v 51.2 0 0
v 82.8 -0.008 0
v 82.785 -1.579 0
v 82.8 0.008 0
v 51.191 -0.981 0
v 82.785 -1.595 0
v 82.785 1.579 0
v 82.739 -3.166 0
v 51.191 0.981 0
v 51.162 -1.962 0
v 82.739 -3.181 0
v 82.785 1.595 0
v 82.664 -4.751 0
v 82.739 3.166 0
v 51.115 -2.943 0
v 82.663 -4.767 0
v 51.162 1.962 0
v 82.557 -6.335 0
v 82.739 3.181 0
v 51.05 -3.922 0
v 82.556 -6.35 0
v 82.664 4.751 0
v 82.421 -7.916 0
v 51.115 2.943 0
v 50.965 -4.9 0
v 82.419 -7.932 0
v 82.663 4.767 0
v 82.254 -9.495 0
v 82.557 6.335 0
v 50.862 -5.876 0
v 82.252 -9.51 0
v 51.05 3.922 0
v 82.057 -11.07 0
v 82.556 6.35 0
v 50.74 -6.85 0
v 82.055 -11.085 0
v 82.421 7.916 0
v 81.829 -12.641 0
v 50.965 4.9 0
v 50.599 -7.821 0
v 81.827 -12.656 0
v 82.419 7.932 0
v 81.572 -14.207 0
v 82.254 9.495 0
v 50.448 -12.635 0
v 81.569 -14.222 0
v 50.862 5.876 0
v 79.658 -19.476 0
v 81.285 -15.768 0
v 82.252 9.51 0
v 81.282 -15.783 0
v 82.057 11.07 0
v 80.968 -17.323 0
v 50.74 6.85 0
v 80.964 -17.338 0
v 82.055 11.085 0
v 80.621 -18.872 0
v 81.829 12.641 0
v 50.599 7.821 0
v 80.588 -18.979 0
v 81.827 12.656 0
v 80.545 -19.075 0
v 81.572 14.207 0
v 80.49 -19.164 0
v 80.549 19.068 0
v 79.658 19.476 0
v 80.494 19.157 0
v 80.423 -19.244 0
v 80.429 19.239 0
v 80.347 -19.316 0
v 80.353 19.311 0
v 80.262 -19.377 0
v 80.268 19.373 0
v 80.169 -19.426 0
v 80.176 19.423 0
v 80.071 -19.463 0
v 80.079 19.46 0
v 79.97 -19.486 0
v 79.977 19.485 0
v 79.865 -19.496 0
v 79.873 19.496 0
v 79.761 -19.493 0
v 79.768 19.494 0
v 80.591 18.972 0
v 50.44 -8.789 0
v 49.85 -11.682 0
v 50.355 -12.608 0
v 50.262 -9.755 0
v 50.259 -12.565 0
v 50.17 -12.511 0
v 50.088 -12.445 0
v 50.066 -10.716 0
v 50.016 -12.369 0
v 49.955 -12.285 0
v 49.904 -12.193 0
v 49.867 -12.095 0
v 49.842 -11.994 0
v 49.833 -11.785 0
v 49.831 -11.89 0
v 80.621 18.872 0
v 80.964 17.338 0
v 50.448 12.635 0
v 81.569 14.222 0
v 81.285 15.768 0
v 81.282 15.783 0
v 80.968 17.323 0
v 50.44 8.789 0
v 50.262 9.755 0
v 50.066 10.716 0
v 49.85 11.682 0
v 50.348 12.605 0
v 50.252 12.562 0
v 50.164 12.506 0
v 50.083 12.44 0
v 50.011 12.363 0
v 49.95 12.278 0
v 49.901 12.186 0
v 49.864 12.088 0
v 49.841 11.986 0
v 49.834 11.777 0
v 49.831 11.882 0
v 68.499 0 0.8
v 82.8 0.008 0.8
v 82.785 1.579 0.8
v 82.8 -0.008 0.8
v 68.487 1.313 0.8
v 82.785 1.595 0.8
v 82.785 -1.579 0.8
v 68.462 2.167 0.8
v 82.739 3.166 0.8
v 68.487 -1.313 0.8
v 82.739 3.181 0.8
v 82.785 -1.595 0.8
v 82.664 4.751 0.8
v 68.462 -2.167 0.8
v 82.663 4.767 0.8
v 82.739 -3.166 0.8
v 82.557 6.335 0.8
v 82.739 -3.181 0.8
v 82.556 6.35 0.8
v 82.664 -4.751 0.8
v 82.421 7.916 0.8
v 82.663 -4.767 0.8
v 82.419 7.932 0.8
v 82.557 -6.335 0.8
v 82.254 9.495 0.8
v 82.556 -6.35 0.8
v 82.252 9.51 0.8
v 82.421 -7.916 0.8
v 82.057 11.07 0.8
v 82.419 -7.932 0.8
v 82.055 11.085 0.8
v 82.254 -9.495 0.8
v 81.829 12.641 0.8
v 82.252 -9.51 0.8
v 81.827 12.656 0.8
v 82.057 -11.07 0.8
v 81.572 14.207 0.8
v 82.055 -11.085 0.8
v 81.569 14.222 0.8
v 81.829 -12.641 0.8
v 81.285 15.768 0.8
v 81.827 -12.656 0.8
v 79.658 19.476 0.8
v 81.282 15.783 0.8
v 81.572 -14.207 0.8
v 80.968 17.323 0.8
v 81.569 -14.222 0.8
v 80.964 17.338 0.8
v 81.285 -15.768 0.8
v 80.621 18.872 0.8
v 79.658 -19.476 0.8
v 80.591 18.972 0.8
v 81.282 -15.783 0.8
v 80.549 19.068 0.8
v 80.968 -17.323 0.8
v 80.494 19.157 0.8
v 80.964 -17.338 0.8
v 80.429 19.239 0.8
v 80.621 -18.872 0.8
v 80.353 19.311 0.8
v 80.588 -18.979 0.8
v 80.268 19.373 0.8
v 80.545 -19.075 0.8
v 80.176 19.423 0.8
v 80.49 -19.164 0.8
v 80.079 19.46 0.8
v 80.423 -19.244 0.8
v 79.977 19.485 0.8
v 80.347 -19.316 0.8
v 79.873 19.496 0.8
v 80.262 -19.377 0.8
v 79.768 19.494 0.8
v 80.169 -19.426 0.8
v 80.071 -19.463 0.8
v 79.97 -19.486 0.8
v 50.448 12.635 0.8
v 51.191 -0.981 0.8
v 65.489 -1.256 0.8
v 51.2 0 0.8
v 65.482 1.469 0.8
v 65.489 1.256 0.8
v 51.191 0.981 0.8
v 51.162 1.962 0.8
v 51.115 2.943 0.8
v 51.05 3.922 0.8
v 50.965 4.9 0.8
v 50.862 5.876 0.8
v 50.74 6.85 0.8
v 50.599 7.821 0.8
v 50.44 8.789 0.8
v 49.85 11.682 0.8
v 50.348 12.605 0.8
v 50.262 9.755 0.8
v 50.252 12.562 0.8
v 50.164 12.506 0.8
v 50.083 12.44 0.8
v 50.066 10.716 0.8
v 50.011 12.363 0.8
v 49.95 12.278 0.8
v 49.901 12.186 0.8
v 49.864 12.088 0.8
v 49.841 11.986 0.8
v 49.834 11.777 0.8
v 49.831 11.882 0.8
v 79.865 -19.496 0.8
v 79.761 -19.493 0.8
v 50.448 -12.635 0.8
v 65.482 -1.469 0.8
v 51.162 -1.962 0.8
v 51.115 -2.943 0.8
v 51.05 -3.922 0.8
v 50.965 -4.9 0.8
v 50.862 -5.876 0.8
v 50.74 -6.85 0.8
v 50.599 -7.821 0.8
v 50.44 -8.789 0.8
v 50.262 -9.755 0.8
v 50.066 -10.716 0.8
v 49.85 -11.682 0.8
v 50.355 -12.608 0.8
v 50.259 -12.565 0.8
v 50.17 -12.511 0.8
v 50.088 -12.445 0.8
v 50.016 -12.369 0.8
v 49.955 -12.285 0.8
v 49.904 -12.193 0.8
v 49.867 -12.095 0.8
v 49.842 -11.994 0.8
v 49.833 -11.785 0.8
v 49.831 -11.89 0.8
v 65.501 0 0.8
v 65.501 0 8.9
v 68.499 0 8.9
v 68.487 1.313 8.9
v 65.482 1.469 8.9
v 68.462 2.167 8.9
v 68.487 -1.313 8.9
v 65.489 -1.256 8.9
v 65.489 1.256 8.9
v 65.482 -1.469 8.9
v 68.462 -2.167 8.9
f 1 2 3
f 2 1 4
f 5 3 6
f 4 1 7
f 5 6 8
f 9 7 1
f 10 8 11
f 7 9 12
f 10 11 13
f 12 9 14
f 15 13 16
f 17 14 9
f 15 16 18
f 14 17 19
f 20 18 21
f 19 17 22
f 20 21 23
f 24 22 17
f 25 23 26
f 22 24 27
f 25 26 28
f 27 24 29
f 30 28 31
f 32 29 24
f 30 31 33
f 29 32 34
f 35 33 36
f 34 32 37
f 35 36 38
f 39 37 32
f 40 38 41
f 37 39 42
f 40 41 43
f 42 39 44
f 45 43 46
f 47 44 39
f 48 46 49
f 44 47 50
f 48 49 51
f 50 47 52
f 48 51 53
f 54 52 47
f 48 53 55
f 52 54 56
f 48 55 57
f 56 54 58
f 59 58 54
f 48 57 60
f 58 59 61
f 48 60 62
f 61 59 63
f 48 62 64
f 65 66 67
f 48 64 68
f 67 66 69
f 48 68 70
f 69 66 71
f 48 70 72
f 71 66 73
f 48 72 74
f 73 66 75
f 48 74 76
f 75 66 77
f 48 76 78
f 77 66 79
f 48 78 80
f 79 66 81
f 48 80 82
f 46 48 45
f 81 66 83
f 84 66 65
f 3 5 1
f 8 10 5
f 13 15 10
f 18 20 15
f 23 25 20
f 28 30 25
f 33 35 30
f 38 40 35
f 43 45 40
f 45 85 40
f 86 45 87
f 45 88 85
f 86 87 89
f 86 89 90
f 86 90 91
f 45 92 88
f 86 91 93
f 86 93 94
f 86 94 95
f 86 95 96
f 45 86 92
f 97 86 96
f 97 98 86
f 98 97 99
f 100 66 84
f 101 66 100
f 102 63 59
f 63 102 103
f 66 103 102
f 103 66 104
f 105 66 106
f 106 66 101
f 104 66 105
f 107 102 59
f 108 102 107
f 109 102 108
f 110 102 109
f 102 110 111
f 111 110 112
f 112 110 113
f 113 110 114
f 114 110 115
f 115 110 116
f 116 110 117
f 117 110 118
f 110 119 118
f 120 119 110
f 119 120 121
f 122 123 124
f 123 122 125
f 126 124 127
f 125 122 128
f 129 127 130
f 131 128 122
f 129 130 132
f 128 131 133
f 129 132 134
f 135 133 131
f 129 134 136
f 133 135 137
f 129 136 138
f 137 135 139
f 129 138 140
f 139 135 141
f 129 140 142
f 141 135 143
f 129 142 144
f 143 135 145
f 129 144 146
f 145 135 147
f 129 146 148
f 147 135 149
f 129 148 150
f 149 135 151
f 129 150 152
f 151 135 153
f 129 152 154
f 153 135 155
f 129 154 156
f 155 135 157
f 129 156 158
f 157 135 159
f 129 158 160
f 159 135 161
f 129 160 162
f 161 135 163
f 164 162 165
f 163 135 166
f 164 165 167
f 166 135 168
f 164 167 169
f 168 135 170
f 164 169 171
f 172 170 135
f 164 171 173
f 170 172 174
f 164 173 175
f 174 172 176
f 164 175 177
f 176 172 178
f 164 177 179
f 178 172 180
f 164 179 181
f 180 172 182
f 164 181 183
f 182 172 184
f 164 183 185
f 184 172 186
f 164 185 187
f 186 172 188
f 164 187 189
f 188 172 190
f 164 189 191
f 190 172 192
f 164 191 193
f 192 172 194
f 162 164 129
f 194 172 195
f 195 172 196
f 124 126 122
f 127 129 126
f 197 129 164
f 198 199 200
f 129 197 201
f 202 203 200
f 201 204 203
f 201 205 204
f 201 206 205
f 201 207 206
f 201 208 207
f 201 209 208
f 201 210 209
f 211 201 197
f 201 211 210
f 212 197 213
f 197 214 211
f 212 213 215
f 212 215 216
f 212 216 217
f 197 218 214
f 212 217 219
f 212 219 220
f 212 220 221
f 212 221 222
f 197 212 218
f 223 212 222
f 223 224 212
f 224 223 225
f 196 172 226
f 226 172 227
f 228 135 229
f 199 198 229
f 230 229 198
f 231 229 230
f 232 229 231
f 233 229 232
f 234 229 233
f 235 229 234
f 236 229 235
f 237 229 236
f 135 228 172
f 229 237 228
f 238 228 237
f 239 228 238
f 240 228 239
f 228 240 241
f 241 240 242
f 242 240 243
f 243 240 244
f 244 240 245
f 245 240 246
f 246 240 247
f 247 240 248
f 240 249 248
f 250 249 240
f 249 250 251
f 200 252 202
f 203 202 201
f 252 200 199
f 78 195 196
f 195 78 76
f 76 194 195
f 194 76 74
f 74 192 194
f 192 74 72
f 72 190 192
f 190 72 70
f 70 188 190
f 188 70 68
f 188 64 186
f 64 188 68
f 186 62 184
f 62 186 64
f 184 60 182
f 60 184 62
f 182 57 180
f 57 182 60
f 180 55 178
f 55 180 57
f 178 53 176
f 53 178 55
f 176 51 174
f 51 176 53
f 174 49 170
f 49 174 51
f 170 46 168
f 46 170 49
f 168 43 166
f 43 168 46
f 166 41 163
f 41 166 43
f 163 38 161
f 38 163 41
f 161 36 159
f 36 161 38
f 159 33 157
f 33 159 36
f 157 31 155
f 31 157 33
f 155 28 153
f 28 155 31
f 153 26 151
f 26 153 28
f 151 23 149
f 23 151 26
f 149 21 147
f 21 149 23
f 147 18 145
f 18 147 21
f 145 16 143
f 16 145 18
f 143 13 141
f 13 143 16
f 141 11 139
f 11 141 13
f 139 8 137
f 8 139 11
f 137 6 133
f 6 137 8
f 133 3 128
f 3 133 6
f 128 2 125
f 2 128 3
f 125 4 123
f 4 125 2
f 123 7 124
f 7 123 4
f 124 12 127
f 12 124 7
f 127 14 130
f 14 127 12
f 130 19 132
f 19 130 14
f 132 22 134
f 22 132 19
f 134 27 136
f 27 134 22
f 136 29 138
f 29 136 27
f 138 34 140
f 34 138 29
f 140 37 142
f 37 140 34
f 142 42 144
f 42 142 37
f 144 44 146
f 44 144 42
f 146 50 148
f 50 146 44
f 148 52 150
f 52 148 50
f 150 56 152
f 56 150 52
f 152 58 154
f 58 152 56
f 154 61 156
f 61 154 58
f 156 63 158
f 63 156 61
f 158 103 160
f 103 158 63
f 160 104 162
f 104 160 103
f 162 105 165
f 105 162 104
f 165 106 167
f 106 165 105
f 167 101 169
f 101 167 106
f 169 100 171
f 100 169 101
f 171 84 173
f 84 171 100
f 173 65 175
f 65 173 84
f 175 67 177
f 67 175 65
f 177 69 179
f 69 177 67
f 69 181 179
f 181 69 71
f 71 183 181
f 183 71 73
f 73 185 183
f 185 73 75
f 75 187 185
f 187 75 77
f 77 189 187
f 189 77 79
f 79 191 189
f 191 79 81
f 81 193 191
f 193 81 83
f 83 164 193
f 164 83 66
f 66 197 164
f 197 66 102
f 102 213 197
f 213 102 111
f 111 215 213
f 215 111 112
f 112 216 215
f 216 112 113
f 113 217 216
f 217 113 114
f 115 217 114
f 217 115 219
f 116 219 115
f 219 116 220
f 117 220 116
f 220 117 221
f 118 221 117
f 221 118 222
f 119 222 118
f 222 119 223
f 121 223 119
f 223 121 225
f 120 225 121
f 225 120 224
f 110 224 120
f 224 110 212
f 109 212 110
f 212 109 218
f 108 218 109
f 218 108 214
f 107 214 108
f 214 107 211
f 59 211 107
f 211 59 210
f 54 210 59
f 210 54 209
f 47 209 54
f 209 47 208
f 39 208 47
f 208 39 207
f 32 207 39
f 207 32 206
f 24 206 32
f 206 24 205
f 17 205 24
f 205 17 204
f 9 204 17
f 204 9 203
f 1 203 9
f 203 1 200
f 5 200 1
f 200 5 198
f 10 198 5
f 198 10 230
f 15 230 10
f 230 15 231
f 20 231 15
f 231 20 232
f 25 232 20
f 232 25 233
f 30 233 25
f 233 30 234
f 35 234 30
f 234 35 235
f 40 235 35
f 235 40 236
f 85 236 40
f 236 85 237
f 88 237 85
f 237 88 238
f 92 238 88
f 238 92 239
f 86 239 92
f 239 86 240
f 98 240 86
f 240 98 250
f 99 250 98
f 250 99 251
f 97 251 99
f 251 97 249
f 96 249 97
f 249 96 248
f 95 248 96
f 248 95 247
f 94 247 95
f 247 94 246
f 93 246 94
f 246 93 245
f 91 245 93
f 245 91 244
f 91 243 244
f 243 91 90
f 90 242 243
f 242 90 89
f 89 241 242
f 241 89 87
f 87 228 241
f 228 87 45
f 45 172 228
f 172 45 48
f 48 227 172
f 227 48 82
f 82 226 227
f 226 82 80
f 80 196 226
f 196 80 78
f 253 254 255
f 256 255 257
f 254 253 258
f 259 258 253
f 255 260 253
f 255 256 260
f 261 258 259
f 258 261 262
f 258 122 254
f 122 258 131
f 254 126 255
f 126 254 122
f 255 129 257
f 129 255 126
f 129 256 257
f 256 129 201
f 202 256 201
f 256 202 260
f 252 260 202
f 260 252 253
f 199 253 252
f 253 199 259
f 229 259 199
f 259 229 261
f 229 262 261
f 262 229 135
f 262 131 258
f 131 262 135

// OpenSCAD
// file: parameters.scad
// =============================================================================
// Gen-BU — nightly 2026-10-10 (physics_scorer, honest magpylib watts)
// New pole/coil ratio on a much bigger ring: twelve narrow 26.4° bobbins (r 52–82 mm, 13.5 mm build, 8.1 mm copper) under 8 poles pushed out to R66, so each coil spans 120° electrical with a short mean turn while the poles sit 52 mm apart (less pole-to-pole leakage) and move faster. 8p/12c was dismissed on earlier nights at 3.2 W because it was only scanned on the R50 ring; tonight it climbs steadily with ring radius (R50 3.39 → R57 4.58 → R59.5 5.18 → R66 6.08 W scan). Diametric Ø5 assists turned out to LOWER this layout, so none are fitted. A ring this big no longer fits a one-plate layout with disc endbells, so the endbells become two crossed 44 mm bar bearing bridges, which is what keeps it on one 410 mm plate.
// Clocking 0 deg (magnets N facing S) + D-flat keyed bore + index notch + flip-symmetric hole map.
// Windable 2-piece bobbin; turns = physics_scorer turns_fit; copper only between flanges.
// Steel back-iron: 2× Ø158 × 4.76 mm (3/16") mild-steel discs (steel_backiron_disc.dxf); magnets sit ON the steel
// (through-pockets) -> score with --back-iron. Night 2026-10-10.
// =============================================================================
topology            = "dual_rotor";

// --- Wire / winding (physics_scorer winding-fit) -------------------------------
wire_awg            = 26;
wire_od             = 0.45;     // insulated OD mm (bare 0.405)
fill_realistic      = 0.65;     // insulated-wire area / window (DENSE layered wind with a jig; scorer cap 0.65)
turns               = 446;       // = physics_scorer turns_fit (do NOT raise)
coil_former_type    = "bobbin";
coil_core_inset     = 13.50;     // radial copper build: hub = copper boundary inset by this
wind_build_axial    = 0.0;      // nothing proud of the flanges
wind_build_radial   = 0.0;

// --- Bobbin (base + lid) ---------------------------------------------------------
coil_id_r           = 52.00;    // copper boundary sector
coil_od_r           = 82.00;
span_deg            = 26.36;    // = pitch - 2*asin((wall+0.85)/coil_id_r) -> >=1.2 mm stator web
former_web          = 8.10;     // copper height between flanges (TALL copper: steel keeps Bz up)
flange_t            = 0.80;     // >= 0.8 mm FDM wall rule (tall winds push on the flanges)
wall                = 0.80;     // flange lip beyond copper
former_bare_h       = former_web + 2 * flange_t;
coil_envelope_h     = former_bare_h + 2 * wind_build_axial;
tab_w               = 7.0;
tab_len             = 7.0;
tab_h               = former_bare_h / 2;
pin_d               = 1.9;      // 1.75 mm filament locating pin
coil_mount_r        = coil_od_r + 0.2 + 4.0;
lead_y              = 1.6;
lead_slot_w         = 0.9;
lead_groove_d       = 0.6;

// --- Gap -------------------------------------------------------------------------
run_clear           = 0.50;     // rotor face -> flange
gap_spacer_h        = run_clear + wind_build_axial;
m2m                 = coil_envelope_h + 2 * run_clear;   // rotor face to rotor face (= gap_sleeve length)

// --- Stator ----------------------------------------------------------------------
coil_stations       = 12;
bay_clear           = 0.25;
stator_thick        = former_bare_h;                        // bobbins flush both faces
stator_od           = 182;
shaft_clear_stator  = 14.0;     // stator is static; gap sleeve OD 12 spins inside

// --- Rotor(s) --------------------------------------------------------------------
magnet_Br           = 1.43;     // N52
magnet_d_large      = 20.0;
magnet_h_large      = 5.0;      // one O20x5 per pocket
magnet_h_small      = 5.0;      // unused: no O5 pockets in this kit
halbach_magnetisation = "none";  // NO O5 assist magnets in this kit (scan: they lower the 4-pole score)
rotor_b_same_axis   = true;     // same-index magnets share one axis: N faces S across the gap
large_pocket_d      = 20.3;
small_pocket_d      = 5.3;
pocket_h            = 5.00;     // THROUGH the carrier: magnet back face sits on the steel disc (FLUSH seat: carrier = magnet height, magnet face level with the rotor face)
large_n             = 8;
R_large             = 66.0;
small_r_list        = [];       // no O5 pockets
carrier_od          = 158.0;
carrier_thick       = pocket_h;
hub_h               = 12.0;     // > steel_t + insert: radial set-screw clears the steel
hub_od              = 24.0;     // slim hub so the M4 brace rods fit at R~18 inside the coil ring
hub_insert_d        = 4.0;      // M3 heat-set insert, radial, bears on the D-flat
rotor_b_offset_deg  = 0.0;      // CLOCKING: magnets directly opposite
shaft_key           = "dflat";
dflat_depth         = 0.5;      // 8 mm shaft with 0.5 mm flat (7.5 across flat)
index_notch_d       = 3.0;

// --- Steel back-iron (buyable laser-cut) -------------------------------------------
steel_t             = 4.76;      // mild steel thickness (image method ignores it; sized from steel_flux.py so the return path stays well below saturation)
steel_center_hole   = 26.0;     // slips over the rotor hub (OD 24)
steel_od            = carrier_od;   // steel disc OD = rotor carrier OD

// --- Modular MAX interface ----------------------------------------------------------
shaft_bore          = 8.35;
dflat_x             = 4.0 - dflat_depth + (shaft_bore - 8.0) / 2;
bearing_d           = 21.85;
bearing_h           = 7.2;
m3_clear            = 3.5;
bolt_r_inner        = 30.0;     // M3 steel-disc clamp bolts (inside the magnet ring)
bolt_n_inner        = 4;
bolt_inner_angles   = [0, 90, 180, 270];
bolt_r_outer        = 44.0;     // second M3 steel-disc clamp ring
bolt_outer_angles   = [67.5, 112.5, 247.5, 292.5];
flange_bolt_r       = 85.0;     // frame rods: OUTSIDE the rotor OD (rotors spin inside them)
flange_bolt_n       = 4;
flange_bolt_offset  = 45.00;    // between coil stations -> never cuts a lead groove/tab
brace_r             = 18.0;
brace_d             = 4.3;      // temporary M4 jack rods (assembly only)
brace_n             = 4;
brace_angles        = [45, 135, 225, 315];          // flip-symmetric

spacer_pad_od       = 14.0;
spacer_pad_id       = m3_clear;
endbell_od          = 180.0;
endbell_thick       = 8.0;
endbell_shaft_clear = 10.0;
collar_h            = 10.0;
standoff_od         = 9.0;
frame_standoff_h    = run_clear + carrier_thick + hub_h + collar_h + 2.0;
sleeve_od           = 12.0;
plate_max_mm        = 410;

$fn = 64;
// main file
// Gen-BU — bobbin BASE (bottom flange + hub). Print x12, flange down. Wind 26 AWG x 446 t around
// the hub with the LID glued on (coil_lid.stl). Copper lives ONLY between the flanges (no proud winds).
include <parameters.scad>;
$fn = 48;
module sector_2d(r_in, r_out, ang) {
    polygon([
        for (a = [-ang/2 : ang/24 : ang/2]) [r_in*cos(a), r_in*sin(a)],
        for (a = [ang/2 : -ang/24 : -ang/2]) [r_out*cos(a), r_out*sin(a)]
    ]);
}
module footprint_2d() { offset(r=wall) sector_2d(coil_id_r, coil_od_r, span_deg); }
module hub_2d()       { offset(delta=-coil_core_inset) sector_2d(coil_id_r, coil_od_r, span_deg); }

union() {
    linear_extrude(flange_t) footprint_2d();
    translate([0, 0, flange_t - 0.01]) linear_extrude(former_web + 0.01) hub_2d();
}
